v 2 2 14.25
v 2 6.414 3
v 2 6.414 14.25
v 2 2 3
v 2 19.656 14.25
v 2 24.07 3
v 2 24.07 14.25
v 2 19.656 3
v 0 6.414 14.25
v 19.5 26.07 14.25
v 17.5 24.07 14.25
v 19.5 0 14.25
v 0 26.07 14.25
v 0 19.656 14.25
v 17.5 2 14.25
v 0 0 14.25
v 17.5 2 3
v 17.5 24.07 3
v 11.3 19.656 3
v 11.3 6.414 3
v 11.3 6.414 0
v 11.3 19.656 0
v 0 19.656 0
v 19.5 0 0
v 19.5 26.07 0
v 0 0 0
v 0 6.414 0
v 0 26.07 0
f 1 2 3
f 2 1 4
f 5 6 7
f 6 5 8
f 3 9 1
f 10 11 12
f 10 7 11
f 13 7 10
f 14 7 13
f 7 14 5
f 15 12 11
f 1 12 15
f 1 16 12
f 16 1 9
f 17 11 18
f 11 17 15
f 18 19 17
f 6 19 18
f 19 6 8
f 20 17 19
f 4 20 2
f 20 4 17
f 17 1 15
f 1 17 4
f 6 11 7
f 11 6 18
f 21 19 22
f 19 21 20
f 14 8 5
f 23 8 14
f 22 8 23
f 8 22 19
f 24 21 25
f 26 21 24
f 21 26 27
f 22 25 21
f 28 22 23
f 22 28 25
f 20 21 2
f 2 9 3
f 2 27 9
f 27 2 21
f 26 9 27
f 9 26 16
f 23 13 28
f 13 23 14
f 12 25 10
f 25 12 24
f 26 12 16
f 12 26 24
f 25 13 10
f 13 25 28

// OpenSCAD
// file: SquarePileLib.scad
module LeftPile(wallThickness, totalHeight, singlePileHeight, singlePileWidth, singlePileLength, pileCount, openingSizePercent = .75){
    pileHeight = (pileCount * singlePileHeight) + .5;
    lengthOpeningSize = singlePileLength * openingSizePercent;
    widthOpeningSize = singlePileWidth * openingSizePercent;
    blockerSize = (singlePileWidth - widthOpeningSize) / 2;
    
    translate([wallThickness, wallThickness, totalHeight - pileHeight])
        cube([singlePileLength, singlePileWidth, pileHeight]);
    translate([-.00001, wallThickness + (blockerSize), 0])
        cube([wallThickness + lengthOpeningSize, widthOpeningSize, totalHeight]);
}

module RightPile(wallThickness, totalHeight, singlePileHeight, singlePileWidth, singlePileLength, pileCount, openingSizePercent = .75){
    translate([0, wallThickness + wallThickness + singlePileWidth, 0])
        rotate([0, 0, 180])
            LeftPile(wallThickness, totalHeight, singlePileHeight, singlePileWidth, singlePileLength, pileCount);
}

module BottomPile(wallThickness, totalHeight, singlePileHeight, singlePileWidth, singlePileLength, pileCount, openingSizePercent = .75){
    translate([wallThickness + wallThickness + singlePileWidth, 0, 0])
        rotate([0, 0, 90])
            LeftPile(wallThickness, totalHeight, singlePileHeight, singlePileWidth, singlePileLength, pileCount);
}

module TopPile(wallThickness, totalHeight, singlePileHeight, singlePileWidth, singlePileLength, pileCount, openingSizePercent = .75){
        rotate([0, 0, 270])
            LeftPile(wallThickness, totalHeight, singlePileHeight, singlePileWidth, singlePileLength, pileCount);
}
// file: ColonistsTool3xLib.scad
include<SquarePileLib.scad>
//25.82 by 32.82 by 2.15
singleTool3xPileHeight = 2.15;
singleTool3xPileWidth = 19.30 + .5;
singleTool3xPileLength = 24.23 + .5;

module LeftTool3xPile(wallThickness, totalHeight, tool3xPileCount){
    LeftPile(
        wallThickness,
        totalHeight,
        singleTool3xPileHeight,
        singleTool3xPileWidth,
        singleTool3xPileLength,
        tool3xPileCount);
}

module RightTool3xPile(wallThickness, totalHeight, tool3xPileCount){
    RightPile(
        wallThickness,
        totalHeight,
        singleTool3xPileHeight,
        singleTool3xPileWidth,
        singleTool3xPileLength,
        tool3xPileCount);
}

module BottomTool3xPile(wallThickness, totalHeight, tool3xPileCount){
    BottomPile(
        wallThickness,
        totalHeight,
        singleTool3xPileHeight,
        singleTool3xPileWidth,
        singleTool3xPileLength,
        tool3xPileCount);
}

module TopTool3xPile(wallThickness, totalHeight, tool3xPileCount){
    TopPile(
        wallThickness,
        totalHeight,
        singleTool3xPileHeight,
        singleTool3xPileWidth,
        singleTool3xPileLength,
        tool3xPileCount);
}

function tool3xPileHeight(tool3xPileCount) =
    (tool3xPileCount * singleTool3xPileHeight) + .5;
// file: ColonistsTool1xLib.scad
include<SquarePileLib.scad>
//25.82 by 32.82 by 2.15
singleTool1xPileHeight = 2.15;
singleTool1xPileWidth = 21.57 + .5;
singleTool1xPileLength = 15 + .5;

module LeftTool1xPile(wallThickness, totalHeight, tool1xPileCount){
    LeftPile(
        wallThickness,
        totalHeight,
        singleTool1xPileHeight,
        singleTool1xPileWidth,
        singleTool1xPileLength,
        tool1xPileCount,
        .6);
}

module RightTool1xPile(wallThickness, totalHeight, tool1xPileCount){
    RightPile(
        wallThickness,
        totalHeight,
        singleTool1xPileHeight,
        singleTool1xPileWidth,
        singleTool1xPileLength,
        tool1xPileCount,
        .6);
}

module BottomTool1xPile(wallThickness, totalHeight, tool1xPileCount){
    BottomPile(
        wallThickness,
        totalHeight,
        singleTool1xPileHeight,
        singleTool1xPileWidth,
        singleTool1xPileLength,
        tool1xPileCount,
        .6);
}

module TopTool1xPile(wallThickness, totalHeight, tool1xPileCount){
    TopPile(
        wallThickness,
        totalHeight,
        singleTool1xPileHeight,
        singleTool1xPileWidth,
        singleTool1xPileLength,
        tool1xPileCount,
        .6);
}

function tool1xPileHeight(tool1xPileCount) =
    (tool1xPileCount * singleTool1xPileHeight) + .5;
// main file
include<ColonistsTool1xLib.scad>
include<ColonistsTool3xLib.scad>
wallThickness = 2;
floorHeight = 3;
tileCount = 5;
height = tool3xPileHeight(tileCount) + floorHeight;
length = singleTool1xPileLength + wallThickness * 2;
width = singleTool1xPileWidth + wallThickness * 2;


difference() {
    
    cube([length, width, height]);
    translate([0, 0, 0])
        LeftTool1xPile(wallThickness, height, tileCount);
}
